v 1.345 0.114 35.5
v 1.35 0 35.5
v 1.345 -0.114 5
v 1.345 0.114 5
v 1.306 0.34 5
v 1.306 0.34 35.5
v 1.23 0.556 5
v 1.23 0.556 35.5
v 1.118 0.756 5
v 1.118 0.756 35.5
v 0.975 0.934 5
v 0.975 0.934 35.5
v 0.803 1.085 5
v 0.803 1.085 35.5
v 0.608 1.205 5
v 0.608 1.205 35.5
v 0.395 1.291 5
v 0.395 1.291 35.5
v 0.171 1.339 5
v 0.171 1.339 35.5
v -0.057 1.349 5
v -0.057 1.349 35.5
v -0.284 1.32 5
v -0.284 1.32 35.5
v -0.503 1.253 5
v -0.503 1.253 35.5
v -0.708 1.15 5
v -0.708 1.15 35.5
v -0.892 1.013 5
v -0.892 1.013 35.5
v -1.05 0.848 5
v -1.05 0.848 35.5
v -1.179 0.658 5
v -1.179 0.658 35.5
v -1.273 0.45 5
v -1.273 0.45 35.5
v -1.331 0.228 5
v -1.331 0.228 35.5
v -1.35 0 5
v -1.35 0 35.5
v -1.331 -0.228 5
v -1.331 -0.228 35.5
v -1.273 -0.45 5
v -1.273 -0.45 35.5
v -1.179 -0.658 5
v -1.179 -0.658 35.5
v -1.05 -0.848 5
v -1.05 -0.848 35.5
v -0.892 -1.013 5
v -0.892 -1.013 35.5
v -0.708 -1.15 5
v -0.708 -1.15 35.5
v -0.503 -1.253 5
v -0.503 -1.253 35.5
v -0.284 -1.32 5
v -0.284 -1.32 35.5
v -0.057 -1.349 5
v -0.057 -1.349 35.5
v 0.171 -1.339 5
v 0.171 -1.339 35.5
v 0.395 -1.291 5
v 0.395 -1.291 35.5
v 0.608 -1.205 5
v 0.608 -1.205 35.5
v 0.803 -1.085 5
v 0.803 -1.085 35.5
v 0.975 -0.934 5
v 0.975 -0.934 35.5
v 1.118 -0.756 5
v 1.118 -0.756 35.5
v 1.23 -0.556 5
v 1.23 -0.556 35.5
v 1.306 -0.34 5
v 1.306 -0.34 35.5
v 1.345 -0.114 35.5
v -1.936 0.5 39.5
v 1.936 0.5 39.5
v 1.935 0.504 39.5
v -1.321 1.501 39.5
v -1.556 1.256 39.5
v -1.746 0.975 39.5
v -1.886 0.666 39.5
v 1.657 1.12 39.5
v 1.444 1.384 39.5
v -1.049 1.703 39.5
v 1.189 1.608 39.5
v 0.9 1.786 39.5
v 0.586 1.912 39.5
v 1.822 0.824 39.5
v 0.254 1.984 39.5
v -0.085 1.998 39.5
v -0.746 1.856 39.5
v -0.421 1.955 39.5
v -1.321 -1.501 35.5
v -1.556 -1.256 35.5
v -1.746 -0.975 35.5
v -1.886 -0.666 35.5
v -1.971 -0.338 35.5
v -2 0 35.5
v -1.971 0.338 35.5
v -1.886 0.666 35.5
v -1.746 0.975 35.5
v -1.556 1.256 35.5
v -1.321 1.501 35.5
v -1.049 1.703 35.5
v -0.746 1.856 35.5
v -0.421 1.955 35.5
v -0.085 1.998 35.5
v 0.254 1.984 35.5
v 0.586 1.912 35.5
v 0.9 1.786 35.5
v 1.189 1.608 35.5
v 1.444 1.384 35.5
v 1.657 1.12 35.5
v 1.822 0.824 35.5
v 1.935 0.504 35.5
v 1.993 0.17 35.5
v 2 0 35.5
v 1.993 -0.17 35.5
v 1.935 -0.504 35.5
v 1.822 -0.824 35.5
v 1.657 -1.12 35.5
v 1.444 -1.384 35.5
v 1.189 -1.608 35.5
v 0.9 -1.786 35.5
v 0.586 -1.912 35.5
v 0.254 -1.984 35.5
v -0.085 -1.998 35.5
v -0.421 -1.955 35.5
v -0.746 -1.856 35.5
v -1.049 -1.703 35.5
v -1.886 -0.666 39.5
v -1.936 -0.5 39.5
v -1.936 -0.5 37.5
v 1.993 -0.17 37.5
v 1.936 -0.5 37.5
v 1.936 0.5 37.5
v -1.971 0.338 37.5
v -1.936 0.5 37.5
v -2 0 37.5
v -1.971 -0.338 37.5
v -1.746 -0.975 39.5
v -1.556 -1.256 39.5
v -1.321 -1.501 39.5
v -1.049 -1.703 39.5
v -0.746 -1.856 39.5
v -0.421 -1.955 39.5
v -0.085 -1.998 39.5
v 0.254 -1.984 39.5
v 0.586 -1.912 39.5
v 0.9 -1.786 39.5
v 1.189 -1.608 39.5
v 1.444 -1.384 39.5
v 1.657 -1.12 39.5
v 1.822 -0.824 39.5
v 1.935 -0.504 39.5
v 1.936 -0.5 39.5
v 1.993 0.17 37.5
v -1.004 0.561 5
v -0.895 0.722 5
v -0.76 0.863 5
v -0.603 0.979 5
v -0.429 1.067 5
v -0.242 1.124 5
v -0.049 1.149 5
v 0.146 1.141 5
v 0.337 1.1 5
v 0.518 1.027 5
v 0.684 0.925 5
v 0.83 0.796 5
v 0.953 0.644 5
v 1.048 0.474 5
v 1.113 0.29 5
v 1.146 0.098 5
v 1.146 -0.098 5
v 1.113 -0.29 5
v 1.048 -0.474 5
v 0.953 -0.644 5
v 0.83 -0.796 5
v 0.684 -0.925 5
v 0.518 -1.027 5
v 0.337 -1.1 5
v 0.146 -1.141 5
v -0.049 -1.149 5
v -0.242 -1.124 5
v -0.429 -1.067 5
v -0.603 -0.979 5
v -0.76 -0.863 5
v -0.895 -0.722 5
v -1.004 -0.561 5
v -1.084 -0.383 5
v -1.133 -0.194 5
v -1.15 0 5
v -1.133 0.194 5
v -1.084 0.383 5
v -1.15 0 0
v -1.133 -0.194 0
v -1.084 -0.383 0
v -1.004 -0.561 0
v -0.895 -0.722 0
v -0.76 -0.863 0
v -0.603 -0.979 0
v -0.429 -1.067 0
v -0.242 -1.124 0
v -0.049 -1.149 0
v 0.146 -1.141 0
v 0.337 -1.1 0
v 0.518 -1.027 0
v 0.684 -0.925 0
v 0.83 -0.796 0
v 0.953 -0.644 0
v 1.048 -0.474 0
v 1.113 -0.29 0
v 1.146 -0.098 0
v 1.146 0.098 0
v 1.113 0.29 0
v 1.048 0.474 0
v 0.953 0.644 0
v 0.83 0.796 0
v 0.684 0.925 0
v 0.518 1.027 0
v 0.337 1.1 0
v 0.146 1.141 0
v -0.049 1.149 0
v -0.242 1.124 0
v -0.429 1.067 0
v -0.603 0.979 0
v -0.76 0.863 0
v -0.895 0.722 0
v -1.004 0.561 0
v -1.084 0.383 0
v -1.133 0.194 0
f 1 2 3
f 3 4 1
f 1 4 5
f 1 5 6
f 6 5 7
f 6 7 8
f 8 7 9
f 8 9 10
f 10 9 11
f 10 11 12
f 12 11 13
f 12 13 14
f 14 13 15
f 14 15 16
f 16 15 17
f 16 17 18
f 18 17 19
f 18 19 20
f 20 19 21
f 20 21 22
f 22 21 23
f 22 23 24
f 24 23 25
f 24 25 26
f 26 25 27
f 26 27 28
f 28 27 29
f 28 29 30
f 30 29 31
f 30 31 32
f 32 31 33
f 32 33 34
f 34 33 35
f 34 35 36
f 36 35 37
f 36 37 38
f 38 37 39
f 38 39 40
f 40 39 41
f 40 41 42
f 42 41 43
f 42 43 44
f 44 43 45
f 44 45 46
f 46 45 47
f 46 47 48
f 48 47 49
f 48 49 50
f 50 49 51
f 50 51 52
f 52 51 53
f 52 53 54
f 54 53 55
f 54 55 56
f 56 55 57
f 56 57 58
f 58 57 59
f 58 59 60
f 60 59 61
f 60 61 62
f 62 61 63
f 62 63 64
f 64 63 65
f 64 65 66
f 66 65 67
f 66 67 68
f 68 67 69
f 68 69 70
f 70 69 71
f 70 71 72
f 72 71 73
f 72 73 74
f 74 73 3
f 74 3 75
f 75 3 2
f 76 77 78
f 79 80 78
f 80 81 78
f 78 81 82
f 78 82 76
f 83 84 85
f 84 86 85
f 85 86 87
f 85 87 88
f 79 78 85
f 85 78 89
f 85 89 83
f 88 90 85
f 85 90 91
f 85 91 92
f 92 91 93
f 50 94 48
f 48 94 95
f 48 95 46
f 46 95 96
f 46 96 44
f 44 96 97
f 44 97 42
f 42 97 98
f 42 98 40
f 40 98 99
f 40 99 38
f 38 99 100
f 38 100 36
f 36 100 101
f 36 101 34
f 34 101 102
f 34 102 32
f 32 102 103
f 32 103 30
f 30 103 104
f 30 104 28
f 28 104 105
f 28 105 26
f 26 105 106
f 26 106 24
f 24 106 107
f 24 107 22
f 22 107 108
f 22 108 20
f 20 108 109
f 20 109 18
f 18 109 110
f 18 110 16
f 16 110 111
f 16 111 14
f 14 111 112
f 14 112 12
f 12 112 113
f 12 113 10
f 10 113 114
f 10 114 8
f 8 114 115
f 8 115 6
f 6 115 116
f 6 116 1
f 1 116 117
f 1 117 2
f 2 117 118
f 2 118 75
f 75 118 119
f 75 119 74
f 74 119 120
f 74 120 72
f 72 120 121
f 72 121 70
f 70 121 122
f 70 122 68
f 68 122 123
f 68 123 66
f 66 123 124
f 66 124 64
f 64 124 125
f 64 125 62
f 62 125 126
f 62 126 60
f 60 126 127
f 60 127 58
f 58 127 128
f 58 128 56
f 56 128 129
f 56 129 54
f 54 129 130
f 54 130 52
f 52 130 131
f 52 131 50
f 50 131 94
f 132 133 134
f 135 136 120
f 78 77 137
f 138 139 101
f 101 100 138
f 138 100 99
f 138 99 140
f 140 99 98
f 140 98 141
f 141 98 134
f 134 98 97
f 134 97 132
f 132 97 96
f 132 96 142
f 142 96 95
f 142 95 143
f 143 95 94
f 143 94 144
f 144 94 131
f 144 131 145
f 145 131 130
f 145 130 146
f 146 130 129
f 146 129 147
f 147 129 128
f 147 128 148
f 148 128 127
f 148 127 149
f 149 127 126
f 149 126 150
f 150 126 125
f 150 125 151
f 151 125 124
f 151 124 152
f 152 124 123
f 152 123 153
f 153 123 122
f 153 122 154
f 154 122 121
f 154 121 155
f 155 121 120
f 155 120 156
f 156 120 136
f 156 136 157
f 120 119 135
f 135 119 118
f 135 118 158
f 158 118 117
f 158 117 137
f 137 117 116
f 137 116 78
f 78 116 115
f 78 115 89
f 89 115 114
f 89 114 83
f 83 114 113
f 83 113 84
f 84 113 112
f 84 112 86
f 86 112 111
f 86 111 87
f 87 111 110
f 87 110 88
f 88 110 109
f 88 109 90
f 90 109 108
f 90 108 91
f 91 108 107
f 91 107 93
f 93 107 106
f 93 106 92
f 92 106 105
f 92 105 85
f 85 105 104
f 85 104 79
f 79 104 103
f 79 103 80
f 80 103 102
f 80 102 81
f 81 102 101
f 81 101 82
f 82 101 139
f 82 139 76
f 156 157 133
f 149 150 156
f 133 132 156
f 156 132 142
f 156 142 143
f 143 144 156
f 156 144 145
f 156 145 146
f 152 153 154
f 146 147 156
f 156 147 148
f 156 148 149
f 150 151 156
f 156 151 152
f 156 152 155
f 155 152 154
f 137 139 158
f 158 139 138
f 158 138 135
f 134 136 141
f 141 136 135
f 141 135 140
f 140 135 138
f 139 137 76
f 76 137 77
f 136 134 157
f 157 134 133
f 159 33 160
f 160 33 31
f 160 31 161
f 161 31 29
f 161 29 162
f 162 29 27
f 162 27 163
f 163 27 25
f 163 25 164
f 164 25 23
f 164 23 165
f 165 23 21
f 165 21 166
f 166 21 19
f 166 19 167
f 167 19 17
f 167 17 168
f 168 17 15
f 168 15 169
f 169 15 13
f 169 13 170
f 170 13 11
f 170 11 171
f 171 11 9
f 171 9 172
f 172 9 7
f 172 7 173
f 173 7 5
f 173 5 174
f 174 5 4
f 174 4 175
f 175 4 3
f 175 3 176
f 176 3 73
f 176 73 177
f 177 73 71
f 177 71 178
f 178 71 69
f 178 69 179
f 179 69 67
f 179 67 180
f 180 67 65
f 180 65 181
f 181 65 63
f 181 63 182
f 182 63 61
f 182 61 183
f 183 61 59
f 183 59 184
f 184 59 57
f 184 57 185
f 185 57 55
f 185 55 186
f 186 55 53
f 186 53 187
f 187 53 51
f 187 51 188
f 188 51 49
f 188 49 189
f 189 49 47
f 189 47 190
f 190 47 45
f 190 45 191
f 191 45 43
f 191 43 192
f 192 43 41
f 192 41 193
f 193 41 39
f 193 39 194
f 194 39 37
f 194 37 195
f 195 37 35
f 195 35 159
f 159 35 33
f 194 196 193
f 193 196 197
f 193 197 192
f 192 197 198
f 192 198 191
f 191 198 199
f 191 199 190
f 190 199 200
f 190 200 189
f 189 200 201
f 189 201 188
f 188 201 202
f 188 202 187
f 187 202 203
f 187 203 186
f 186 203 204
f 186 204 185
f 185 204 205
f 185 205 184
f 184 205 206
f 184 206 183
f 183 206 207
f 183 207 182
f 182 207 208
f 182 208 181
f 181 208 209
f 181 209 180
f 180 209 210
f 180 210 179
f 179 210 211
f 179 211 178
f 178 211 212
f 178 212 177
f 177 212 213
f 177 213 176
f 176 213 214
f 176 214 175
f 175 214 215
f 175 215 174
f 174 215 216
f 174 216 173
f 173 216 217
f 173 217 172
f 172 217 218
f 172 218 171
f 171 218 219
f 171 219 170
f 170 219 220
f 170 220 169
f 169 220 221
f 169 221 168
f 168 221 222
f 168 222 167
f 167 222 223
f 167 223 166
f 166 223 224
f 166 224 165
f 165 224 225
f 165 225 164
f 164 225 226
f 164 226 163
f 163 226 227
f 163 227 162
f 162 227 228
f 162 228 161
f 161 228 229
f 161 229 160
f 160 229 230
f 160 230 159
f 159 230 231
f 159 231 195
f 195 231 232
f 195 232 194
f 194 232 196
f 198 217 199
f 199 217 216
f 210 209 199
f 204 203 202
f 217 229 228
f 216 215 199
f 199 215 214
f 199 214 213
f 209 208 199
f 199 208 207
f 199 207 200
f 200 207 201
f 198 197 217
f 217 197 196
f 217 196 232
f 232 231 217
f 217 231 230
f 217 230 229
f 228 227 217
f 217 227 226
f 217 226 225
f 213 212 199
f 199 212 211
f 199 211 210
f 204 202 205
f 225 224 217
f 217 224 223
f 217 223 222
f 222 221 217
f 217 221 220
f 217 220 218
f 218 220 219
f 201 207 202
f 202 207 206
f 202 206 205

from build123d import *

# Parameters (mm, degrees)
SKETCH1_R           = 1.35
BOSS_EXTRUDE1_DEPTH = 35.5
SKETCH2_R           = 2
BOSS_EXTRUDE2_DEPTH = 4
SKETCH3_W           = 4
SKETCH3_H           = 1
CUT_EXTRUDE1_DEPTH  = 2
SKETCH4_OUTSIDE_W   = 13.98
SKETCH4_OUTSIDE_H   = 13.98
SKETCH4_OUTSIDE_R   = 1.15
CUT_EXTRUDE2_DEPTH  = 5


with BuildPart() as part:
    # Sketch1 → Boss-Extrude1 (new body)
    with BuildSketch(Plane.XY):
        Circle(SKETCH1_R)
    extrude(amount=BOSS_EXTRUDE1_DEPTH)

    # Sketch2 → Boss-Extrude2 (add)
    with BuildSketch(Plane.XY.offset(35.5)):
        Circle(SKETCH2_R)
    extrude(amount=BOSS_EXTRUDE2_DEPTH)

    # Sketch3 → Cut-Extrude1 (cut)
    with BuildSketch(Plane.XY.offset(39.5)):
        Rectangle(SKETCH3_W, SKETCH3_H)
    extrude(amount=-CUT_EXTRUDE1_DEPTH, mode=Mode.SUBTRACT)

    # Sketch4 outside → Cut-Extrude2 (cut)
    with BuildSketch(Plane(origin=(0, 0, 0), x_dir=(-1, 0, 0), z_dir=(0, 0, -1))):
        Rectangle(SKETCH4_OUTSIDE_W, SKETCH4_OUTSIDE_H)
        Circle(SKETCH4_OUTSIDE_R, mode=Mode.SUBTRACT)
    extrude(amount=-CUT_EXTRUDE2_DEPTH, mode=Mode.SUBTRACT)


solid = part.part
